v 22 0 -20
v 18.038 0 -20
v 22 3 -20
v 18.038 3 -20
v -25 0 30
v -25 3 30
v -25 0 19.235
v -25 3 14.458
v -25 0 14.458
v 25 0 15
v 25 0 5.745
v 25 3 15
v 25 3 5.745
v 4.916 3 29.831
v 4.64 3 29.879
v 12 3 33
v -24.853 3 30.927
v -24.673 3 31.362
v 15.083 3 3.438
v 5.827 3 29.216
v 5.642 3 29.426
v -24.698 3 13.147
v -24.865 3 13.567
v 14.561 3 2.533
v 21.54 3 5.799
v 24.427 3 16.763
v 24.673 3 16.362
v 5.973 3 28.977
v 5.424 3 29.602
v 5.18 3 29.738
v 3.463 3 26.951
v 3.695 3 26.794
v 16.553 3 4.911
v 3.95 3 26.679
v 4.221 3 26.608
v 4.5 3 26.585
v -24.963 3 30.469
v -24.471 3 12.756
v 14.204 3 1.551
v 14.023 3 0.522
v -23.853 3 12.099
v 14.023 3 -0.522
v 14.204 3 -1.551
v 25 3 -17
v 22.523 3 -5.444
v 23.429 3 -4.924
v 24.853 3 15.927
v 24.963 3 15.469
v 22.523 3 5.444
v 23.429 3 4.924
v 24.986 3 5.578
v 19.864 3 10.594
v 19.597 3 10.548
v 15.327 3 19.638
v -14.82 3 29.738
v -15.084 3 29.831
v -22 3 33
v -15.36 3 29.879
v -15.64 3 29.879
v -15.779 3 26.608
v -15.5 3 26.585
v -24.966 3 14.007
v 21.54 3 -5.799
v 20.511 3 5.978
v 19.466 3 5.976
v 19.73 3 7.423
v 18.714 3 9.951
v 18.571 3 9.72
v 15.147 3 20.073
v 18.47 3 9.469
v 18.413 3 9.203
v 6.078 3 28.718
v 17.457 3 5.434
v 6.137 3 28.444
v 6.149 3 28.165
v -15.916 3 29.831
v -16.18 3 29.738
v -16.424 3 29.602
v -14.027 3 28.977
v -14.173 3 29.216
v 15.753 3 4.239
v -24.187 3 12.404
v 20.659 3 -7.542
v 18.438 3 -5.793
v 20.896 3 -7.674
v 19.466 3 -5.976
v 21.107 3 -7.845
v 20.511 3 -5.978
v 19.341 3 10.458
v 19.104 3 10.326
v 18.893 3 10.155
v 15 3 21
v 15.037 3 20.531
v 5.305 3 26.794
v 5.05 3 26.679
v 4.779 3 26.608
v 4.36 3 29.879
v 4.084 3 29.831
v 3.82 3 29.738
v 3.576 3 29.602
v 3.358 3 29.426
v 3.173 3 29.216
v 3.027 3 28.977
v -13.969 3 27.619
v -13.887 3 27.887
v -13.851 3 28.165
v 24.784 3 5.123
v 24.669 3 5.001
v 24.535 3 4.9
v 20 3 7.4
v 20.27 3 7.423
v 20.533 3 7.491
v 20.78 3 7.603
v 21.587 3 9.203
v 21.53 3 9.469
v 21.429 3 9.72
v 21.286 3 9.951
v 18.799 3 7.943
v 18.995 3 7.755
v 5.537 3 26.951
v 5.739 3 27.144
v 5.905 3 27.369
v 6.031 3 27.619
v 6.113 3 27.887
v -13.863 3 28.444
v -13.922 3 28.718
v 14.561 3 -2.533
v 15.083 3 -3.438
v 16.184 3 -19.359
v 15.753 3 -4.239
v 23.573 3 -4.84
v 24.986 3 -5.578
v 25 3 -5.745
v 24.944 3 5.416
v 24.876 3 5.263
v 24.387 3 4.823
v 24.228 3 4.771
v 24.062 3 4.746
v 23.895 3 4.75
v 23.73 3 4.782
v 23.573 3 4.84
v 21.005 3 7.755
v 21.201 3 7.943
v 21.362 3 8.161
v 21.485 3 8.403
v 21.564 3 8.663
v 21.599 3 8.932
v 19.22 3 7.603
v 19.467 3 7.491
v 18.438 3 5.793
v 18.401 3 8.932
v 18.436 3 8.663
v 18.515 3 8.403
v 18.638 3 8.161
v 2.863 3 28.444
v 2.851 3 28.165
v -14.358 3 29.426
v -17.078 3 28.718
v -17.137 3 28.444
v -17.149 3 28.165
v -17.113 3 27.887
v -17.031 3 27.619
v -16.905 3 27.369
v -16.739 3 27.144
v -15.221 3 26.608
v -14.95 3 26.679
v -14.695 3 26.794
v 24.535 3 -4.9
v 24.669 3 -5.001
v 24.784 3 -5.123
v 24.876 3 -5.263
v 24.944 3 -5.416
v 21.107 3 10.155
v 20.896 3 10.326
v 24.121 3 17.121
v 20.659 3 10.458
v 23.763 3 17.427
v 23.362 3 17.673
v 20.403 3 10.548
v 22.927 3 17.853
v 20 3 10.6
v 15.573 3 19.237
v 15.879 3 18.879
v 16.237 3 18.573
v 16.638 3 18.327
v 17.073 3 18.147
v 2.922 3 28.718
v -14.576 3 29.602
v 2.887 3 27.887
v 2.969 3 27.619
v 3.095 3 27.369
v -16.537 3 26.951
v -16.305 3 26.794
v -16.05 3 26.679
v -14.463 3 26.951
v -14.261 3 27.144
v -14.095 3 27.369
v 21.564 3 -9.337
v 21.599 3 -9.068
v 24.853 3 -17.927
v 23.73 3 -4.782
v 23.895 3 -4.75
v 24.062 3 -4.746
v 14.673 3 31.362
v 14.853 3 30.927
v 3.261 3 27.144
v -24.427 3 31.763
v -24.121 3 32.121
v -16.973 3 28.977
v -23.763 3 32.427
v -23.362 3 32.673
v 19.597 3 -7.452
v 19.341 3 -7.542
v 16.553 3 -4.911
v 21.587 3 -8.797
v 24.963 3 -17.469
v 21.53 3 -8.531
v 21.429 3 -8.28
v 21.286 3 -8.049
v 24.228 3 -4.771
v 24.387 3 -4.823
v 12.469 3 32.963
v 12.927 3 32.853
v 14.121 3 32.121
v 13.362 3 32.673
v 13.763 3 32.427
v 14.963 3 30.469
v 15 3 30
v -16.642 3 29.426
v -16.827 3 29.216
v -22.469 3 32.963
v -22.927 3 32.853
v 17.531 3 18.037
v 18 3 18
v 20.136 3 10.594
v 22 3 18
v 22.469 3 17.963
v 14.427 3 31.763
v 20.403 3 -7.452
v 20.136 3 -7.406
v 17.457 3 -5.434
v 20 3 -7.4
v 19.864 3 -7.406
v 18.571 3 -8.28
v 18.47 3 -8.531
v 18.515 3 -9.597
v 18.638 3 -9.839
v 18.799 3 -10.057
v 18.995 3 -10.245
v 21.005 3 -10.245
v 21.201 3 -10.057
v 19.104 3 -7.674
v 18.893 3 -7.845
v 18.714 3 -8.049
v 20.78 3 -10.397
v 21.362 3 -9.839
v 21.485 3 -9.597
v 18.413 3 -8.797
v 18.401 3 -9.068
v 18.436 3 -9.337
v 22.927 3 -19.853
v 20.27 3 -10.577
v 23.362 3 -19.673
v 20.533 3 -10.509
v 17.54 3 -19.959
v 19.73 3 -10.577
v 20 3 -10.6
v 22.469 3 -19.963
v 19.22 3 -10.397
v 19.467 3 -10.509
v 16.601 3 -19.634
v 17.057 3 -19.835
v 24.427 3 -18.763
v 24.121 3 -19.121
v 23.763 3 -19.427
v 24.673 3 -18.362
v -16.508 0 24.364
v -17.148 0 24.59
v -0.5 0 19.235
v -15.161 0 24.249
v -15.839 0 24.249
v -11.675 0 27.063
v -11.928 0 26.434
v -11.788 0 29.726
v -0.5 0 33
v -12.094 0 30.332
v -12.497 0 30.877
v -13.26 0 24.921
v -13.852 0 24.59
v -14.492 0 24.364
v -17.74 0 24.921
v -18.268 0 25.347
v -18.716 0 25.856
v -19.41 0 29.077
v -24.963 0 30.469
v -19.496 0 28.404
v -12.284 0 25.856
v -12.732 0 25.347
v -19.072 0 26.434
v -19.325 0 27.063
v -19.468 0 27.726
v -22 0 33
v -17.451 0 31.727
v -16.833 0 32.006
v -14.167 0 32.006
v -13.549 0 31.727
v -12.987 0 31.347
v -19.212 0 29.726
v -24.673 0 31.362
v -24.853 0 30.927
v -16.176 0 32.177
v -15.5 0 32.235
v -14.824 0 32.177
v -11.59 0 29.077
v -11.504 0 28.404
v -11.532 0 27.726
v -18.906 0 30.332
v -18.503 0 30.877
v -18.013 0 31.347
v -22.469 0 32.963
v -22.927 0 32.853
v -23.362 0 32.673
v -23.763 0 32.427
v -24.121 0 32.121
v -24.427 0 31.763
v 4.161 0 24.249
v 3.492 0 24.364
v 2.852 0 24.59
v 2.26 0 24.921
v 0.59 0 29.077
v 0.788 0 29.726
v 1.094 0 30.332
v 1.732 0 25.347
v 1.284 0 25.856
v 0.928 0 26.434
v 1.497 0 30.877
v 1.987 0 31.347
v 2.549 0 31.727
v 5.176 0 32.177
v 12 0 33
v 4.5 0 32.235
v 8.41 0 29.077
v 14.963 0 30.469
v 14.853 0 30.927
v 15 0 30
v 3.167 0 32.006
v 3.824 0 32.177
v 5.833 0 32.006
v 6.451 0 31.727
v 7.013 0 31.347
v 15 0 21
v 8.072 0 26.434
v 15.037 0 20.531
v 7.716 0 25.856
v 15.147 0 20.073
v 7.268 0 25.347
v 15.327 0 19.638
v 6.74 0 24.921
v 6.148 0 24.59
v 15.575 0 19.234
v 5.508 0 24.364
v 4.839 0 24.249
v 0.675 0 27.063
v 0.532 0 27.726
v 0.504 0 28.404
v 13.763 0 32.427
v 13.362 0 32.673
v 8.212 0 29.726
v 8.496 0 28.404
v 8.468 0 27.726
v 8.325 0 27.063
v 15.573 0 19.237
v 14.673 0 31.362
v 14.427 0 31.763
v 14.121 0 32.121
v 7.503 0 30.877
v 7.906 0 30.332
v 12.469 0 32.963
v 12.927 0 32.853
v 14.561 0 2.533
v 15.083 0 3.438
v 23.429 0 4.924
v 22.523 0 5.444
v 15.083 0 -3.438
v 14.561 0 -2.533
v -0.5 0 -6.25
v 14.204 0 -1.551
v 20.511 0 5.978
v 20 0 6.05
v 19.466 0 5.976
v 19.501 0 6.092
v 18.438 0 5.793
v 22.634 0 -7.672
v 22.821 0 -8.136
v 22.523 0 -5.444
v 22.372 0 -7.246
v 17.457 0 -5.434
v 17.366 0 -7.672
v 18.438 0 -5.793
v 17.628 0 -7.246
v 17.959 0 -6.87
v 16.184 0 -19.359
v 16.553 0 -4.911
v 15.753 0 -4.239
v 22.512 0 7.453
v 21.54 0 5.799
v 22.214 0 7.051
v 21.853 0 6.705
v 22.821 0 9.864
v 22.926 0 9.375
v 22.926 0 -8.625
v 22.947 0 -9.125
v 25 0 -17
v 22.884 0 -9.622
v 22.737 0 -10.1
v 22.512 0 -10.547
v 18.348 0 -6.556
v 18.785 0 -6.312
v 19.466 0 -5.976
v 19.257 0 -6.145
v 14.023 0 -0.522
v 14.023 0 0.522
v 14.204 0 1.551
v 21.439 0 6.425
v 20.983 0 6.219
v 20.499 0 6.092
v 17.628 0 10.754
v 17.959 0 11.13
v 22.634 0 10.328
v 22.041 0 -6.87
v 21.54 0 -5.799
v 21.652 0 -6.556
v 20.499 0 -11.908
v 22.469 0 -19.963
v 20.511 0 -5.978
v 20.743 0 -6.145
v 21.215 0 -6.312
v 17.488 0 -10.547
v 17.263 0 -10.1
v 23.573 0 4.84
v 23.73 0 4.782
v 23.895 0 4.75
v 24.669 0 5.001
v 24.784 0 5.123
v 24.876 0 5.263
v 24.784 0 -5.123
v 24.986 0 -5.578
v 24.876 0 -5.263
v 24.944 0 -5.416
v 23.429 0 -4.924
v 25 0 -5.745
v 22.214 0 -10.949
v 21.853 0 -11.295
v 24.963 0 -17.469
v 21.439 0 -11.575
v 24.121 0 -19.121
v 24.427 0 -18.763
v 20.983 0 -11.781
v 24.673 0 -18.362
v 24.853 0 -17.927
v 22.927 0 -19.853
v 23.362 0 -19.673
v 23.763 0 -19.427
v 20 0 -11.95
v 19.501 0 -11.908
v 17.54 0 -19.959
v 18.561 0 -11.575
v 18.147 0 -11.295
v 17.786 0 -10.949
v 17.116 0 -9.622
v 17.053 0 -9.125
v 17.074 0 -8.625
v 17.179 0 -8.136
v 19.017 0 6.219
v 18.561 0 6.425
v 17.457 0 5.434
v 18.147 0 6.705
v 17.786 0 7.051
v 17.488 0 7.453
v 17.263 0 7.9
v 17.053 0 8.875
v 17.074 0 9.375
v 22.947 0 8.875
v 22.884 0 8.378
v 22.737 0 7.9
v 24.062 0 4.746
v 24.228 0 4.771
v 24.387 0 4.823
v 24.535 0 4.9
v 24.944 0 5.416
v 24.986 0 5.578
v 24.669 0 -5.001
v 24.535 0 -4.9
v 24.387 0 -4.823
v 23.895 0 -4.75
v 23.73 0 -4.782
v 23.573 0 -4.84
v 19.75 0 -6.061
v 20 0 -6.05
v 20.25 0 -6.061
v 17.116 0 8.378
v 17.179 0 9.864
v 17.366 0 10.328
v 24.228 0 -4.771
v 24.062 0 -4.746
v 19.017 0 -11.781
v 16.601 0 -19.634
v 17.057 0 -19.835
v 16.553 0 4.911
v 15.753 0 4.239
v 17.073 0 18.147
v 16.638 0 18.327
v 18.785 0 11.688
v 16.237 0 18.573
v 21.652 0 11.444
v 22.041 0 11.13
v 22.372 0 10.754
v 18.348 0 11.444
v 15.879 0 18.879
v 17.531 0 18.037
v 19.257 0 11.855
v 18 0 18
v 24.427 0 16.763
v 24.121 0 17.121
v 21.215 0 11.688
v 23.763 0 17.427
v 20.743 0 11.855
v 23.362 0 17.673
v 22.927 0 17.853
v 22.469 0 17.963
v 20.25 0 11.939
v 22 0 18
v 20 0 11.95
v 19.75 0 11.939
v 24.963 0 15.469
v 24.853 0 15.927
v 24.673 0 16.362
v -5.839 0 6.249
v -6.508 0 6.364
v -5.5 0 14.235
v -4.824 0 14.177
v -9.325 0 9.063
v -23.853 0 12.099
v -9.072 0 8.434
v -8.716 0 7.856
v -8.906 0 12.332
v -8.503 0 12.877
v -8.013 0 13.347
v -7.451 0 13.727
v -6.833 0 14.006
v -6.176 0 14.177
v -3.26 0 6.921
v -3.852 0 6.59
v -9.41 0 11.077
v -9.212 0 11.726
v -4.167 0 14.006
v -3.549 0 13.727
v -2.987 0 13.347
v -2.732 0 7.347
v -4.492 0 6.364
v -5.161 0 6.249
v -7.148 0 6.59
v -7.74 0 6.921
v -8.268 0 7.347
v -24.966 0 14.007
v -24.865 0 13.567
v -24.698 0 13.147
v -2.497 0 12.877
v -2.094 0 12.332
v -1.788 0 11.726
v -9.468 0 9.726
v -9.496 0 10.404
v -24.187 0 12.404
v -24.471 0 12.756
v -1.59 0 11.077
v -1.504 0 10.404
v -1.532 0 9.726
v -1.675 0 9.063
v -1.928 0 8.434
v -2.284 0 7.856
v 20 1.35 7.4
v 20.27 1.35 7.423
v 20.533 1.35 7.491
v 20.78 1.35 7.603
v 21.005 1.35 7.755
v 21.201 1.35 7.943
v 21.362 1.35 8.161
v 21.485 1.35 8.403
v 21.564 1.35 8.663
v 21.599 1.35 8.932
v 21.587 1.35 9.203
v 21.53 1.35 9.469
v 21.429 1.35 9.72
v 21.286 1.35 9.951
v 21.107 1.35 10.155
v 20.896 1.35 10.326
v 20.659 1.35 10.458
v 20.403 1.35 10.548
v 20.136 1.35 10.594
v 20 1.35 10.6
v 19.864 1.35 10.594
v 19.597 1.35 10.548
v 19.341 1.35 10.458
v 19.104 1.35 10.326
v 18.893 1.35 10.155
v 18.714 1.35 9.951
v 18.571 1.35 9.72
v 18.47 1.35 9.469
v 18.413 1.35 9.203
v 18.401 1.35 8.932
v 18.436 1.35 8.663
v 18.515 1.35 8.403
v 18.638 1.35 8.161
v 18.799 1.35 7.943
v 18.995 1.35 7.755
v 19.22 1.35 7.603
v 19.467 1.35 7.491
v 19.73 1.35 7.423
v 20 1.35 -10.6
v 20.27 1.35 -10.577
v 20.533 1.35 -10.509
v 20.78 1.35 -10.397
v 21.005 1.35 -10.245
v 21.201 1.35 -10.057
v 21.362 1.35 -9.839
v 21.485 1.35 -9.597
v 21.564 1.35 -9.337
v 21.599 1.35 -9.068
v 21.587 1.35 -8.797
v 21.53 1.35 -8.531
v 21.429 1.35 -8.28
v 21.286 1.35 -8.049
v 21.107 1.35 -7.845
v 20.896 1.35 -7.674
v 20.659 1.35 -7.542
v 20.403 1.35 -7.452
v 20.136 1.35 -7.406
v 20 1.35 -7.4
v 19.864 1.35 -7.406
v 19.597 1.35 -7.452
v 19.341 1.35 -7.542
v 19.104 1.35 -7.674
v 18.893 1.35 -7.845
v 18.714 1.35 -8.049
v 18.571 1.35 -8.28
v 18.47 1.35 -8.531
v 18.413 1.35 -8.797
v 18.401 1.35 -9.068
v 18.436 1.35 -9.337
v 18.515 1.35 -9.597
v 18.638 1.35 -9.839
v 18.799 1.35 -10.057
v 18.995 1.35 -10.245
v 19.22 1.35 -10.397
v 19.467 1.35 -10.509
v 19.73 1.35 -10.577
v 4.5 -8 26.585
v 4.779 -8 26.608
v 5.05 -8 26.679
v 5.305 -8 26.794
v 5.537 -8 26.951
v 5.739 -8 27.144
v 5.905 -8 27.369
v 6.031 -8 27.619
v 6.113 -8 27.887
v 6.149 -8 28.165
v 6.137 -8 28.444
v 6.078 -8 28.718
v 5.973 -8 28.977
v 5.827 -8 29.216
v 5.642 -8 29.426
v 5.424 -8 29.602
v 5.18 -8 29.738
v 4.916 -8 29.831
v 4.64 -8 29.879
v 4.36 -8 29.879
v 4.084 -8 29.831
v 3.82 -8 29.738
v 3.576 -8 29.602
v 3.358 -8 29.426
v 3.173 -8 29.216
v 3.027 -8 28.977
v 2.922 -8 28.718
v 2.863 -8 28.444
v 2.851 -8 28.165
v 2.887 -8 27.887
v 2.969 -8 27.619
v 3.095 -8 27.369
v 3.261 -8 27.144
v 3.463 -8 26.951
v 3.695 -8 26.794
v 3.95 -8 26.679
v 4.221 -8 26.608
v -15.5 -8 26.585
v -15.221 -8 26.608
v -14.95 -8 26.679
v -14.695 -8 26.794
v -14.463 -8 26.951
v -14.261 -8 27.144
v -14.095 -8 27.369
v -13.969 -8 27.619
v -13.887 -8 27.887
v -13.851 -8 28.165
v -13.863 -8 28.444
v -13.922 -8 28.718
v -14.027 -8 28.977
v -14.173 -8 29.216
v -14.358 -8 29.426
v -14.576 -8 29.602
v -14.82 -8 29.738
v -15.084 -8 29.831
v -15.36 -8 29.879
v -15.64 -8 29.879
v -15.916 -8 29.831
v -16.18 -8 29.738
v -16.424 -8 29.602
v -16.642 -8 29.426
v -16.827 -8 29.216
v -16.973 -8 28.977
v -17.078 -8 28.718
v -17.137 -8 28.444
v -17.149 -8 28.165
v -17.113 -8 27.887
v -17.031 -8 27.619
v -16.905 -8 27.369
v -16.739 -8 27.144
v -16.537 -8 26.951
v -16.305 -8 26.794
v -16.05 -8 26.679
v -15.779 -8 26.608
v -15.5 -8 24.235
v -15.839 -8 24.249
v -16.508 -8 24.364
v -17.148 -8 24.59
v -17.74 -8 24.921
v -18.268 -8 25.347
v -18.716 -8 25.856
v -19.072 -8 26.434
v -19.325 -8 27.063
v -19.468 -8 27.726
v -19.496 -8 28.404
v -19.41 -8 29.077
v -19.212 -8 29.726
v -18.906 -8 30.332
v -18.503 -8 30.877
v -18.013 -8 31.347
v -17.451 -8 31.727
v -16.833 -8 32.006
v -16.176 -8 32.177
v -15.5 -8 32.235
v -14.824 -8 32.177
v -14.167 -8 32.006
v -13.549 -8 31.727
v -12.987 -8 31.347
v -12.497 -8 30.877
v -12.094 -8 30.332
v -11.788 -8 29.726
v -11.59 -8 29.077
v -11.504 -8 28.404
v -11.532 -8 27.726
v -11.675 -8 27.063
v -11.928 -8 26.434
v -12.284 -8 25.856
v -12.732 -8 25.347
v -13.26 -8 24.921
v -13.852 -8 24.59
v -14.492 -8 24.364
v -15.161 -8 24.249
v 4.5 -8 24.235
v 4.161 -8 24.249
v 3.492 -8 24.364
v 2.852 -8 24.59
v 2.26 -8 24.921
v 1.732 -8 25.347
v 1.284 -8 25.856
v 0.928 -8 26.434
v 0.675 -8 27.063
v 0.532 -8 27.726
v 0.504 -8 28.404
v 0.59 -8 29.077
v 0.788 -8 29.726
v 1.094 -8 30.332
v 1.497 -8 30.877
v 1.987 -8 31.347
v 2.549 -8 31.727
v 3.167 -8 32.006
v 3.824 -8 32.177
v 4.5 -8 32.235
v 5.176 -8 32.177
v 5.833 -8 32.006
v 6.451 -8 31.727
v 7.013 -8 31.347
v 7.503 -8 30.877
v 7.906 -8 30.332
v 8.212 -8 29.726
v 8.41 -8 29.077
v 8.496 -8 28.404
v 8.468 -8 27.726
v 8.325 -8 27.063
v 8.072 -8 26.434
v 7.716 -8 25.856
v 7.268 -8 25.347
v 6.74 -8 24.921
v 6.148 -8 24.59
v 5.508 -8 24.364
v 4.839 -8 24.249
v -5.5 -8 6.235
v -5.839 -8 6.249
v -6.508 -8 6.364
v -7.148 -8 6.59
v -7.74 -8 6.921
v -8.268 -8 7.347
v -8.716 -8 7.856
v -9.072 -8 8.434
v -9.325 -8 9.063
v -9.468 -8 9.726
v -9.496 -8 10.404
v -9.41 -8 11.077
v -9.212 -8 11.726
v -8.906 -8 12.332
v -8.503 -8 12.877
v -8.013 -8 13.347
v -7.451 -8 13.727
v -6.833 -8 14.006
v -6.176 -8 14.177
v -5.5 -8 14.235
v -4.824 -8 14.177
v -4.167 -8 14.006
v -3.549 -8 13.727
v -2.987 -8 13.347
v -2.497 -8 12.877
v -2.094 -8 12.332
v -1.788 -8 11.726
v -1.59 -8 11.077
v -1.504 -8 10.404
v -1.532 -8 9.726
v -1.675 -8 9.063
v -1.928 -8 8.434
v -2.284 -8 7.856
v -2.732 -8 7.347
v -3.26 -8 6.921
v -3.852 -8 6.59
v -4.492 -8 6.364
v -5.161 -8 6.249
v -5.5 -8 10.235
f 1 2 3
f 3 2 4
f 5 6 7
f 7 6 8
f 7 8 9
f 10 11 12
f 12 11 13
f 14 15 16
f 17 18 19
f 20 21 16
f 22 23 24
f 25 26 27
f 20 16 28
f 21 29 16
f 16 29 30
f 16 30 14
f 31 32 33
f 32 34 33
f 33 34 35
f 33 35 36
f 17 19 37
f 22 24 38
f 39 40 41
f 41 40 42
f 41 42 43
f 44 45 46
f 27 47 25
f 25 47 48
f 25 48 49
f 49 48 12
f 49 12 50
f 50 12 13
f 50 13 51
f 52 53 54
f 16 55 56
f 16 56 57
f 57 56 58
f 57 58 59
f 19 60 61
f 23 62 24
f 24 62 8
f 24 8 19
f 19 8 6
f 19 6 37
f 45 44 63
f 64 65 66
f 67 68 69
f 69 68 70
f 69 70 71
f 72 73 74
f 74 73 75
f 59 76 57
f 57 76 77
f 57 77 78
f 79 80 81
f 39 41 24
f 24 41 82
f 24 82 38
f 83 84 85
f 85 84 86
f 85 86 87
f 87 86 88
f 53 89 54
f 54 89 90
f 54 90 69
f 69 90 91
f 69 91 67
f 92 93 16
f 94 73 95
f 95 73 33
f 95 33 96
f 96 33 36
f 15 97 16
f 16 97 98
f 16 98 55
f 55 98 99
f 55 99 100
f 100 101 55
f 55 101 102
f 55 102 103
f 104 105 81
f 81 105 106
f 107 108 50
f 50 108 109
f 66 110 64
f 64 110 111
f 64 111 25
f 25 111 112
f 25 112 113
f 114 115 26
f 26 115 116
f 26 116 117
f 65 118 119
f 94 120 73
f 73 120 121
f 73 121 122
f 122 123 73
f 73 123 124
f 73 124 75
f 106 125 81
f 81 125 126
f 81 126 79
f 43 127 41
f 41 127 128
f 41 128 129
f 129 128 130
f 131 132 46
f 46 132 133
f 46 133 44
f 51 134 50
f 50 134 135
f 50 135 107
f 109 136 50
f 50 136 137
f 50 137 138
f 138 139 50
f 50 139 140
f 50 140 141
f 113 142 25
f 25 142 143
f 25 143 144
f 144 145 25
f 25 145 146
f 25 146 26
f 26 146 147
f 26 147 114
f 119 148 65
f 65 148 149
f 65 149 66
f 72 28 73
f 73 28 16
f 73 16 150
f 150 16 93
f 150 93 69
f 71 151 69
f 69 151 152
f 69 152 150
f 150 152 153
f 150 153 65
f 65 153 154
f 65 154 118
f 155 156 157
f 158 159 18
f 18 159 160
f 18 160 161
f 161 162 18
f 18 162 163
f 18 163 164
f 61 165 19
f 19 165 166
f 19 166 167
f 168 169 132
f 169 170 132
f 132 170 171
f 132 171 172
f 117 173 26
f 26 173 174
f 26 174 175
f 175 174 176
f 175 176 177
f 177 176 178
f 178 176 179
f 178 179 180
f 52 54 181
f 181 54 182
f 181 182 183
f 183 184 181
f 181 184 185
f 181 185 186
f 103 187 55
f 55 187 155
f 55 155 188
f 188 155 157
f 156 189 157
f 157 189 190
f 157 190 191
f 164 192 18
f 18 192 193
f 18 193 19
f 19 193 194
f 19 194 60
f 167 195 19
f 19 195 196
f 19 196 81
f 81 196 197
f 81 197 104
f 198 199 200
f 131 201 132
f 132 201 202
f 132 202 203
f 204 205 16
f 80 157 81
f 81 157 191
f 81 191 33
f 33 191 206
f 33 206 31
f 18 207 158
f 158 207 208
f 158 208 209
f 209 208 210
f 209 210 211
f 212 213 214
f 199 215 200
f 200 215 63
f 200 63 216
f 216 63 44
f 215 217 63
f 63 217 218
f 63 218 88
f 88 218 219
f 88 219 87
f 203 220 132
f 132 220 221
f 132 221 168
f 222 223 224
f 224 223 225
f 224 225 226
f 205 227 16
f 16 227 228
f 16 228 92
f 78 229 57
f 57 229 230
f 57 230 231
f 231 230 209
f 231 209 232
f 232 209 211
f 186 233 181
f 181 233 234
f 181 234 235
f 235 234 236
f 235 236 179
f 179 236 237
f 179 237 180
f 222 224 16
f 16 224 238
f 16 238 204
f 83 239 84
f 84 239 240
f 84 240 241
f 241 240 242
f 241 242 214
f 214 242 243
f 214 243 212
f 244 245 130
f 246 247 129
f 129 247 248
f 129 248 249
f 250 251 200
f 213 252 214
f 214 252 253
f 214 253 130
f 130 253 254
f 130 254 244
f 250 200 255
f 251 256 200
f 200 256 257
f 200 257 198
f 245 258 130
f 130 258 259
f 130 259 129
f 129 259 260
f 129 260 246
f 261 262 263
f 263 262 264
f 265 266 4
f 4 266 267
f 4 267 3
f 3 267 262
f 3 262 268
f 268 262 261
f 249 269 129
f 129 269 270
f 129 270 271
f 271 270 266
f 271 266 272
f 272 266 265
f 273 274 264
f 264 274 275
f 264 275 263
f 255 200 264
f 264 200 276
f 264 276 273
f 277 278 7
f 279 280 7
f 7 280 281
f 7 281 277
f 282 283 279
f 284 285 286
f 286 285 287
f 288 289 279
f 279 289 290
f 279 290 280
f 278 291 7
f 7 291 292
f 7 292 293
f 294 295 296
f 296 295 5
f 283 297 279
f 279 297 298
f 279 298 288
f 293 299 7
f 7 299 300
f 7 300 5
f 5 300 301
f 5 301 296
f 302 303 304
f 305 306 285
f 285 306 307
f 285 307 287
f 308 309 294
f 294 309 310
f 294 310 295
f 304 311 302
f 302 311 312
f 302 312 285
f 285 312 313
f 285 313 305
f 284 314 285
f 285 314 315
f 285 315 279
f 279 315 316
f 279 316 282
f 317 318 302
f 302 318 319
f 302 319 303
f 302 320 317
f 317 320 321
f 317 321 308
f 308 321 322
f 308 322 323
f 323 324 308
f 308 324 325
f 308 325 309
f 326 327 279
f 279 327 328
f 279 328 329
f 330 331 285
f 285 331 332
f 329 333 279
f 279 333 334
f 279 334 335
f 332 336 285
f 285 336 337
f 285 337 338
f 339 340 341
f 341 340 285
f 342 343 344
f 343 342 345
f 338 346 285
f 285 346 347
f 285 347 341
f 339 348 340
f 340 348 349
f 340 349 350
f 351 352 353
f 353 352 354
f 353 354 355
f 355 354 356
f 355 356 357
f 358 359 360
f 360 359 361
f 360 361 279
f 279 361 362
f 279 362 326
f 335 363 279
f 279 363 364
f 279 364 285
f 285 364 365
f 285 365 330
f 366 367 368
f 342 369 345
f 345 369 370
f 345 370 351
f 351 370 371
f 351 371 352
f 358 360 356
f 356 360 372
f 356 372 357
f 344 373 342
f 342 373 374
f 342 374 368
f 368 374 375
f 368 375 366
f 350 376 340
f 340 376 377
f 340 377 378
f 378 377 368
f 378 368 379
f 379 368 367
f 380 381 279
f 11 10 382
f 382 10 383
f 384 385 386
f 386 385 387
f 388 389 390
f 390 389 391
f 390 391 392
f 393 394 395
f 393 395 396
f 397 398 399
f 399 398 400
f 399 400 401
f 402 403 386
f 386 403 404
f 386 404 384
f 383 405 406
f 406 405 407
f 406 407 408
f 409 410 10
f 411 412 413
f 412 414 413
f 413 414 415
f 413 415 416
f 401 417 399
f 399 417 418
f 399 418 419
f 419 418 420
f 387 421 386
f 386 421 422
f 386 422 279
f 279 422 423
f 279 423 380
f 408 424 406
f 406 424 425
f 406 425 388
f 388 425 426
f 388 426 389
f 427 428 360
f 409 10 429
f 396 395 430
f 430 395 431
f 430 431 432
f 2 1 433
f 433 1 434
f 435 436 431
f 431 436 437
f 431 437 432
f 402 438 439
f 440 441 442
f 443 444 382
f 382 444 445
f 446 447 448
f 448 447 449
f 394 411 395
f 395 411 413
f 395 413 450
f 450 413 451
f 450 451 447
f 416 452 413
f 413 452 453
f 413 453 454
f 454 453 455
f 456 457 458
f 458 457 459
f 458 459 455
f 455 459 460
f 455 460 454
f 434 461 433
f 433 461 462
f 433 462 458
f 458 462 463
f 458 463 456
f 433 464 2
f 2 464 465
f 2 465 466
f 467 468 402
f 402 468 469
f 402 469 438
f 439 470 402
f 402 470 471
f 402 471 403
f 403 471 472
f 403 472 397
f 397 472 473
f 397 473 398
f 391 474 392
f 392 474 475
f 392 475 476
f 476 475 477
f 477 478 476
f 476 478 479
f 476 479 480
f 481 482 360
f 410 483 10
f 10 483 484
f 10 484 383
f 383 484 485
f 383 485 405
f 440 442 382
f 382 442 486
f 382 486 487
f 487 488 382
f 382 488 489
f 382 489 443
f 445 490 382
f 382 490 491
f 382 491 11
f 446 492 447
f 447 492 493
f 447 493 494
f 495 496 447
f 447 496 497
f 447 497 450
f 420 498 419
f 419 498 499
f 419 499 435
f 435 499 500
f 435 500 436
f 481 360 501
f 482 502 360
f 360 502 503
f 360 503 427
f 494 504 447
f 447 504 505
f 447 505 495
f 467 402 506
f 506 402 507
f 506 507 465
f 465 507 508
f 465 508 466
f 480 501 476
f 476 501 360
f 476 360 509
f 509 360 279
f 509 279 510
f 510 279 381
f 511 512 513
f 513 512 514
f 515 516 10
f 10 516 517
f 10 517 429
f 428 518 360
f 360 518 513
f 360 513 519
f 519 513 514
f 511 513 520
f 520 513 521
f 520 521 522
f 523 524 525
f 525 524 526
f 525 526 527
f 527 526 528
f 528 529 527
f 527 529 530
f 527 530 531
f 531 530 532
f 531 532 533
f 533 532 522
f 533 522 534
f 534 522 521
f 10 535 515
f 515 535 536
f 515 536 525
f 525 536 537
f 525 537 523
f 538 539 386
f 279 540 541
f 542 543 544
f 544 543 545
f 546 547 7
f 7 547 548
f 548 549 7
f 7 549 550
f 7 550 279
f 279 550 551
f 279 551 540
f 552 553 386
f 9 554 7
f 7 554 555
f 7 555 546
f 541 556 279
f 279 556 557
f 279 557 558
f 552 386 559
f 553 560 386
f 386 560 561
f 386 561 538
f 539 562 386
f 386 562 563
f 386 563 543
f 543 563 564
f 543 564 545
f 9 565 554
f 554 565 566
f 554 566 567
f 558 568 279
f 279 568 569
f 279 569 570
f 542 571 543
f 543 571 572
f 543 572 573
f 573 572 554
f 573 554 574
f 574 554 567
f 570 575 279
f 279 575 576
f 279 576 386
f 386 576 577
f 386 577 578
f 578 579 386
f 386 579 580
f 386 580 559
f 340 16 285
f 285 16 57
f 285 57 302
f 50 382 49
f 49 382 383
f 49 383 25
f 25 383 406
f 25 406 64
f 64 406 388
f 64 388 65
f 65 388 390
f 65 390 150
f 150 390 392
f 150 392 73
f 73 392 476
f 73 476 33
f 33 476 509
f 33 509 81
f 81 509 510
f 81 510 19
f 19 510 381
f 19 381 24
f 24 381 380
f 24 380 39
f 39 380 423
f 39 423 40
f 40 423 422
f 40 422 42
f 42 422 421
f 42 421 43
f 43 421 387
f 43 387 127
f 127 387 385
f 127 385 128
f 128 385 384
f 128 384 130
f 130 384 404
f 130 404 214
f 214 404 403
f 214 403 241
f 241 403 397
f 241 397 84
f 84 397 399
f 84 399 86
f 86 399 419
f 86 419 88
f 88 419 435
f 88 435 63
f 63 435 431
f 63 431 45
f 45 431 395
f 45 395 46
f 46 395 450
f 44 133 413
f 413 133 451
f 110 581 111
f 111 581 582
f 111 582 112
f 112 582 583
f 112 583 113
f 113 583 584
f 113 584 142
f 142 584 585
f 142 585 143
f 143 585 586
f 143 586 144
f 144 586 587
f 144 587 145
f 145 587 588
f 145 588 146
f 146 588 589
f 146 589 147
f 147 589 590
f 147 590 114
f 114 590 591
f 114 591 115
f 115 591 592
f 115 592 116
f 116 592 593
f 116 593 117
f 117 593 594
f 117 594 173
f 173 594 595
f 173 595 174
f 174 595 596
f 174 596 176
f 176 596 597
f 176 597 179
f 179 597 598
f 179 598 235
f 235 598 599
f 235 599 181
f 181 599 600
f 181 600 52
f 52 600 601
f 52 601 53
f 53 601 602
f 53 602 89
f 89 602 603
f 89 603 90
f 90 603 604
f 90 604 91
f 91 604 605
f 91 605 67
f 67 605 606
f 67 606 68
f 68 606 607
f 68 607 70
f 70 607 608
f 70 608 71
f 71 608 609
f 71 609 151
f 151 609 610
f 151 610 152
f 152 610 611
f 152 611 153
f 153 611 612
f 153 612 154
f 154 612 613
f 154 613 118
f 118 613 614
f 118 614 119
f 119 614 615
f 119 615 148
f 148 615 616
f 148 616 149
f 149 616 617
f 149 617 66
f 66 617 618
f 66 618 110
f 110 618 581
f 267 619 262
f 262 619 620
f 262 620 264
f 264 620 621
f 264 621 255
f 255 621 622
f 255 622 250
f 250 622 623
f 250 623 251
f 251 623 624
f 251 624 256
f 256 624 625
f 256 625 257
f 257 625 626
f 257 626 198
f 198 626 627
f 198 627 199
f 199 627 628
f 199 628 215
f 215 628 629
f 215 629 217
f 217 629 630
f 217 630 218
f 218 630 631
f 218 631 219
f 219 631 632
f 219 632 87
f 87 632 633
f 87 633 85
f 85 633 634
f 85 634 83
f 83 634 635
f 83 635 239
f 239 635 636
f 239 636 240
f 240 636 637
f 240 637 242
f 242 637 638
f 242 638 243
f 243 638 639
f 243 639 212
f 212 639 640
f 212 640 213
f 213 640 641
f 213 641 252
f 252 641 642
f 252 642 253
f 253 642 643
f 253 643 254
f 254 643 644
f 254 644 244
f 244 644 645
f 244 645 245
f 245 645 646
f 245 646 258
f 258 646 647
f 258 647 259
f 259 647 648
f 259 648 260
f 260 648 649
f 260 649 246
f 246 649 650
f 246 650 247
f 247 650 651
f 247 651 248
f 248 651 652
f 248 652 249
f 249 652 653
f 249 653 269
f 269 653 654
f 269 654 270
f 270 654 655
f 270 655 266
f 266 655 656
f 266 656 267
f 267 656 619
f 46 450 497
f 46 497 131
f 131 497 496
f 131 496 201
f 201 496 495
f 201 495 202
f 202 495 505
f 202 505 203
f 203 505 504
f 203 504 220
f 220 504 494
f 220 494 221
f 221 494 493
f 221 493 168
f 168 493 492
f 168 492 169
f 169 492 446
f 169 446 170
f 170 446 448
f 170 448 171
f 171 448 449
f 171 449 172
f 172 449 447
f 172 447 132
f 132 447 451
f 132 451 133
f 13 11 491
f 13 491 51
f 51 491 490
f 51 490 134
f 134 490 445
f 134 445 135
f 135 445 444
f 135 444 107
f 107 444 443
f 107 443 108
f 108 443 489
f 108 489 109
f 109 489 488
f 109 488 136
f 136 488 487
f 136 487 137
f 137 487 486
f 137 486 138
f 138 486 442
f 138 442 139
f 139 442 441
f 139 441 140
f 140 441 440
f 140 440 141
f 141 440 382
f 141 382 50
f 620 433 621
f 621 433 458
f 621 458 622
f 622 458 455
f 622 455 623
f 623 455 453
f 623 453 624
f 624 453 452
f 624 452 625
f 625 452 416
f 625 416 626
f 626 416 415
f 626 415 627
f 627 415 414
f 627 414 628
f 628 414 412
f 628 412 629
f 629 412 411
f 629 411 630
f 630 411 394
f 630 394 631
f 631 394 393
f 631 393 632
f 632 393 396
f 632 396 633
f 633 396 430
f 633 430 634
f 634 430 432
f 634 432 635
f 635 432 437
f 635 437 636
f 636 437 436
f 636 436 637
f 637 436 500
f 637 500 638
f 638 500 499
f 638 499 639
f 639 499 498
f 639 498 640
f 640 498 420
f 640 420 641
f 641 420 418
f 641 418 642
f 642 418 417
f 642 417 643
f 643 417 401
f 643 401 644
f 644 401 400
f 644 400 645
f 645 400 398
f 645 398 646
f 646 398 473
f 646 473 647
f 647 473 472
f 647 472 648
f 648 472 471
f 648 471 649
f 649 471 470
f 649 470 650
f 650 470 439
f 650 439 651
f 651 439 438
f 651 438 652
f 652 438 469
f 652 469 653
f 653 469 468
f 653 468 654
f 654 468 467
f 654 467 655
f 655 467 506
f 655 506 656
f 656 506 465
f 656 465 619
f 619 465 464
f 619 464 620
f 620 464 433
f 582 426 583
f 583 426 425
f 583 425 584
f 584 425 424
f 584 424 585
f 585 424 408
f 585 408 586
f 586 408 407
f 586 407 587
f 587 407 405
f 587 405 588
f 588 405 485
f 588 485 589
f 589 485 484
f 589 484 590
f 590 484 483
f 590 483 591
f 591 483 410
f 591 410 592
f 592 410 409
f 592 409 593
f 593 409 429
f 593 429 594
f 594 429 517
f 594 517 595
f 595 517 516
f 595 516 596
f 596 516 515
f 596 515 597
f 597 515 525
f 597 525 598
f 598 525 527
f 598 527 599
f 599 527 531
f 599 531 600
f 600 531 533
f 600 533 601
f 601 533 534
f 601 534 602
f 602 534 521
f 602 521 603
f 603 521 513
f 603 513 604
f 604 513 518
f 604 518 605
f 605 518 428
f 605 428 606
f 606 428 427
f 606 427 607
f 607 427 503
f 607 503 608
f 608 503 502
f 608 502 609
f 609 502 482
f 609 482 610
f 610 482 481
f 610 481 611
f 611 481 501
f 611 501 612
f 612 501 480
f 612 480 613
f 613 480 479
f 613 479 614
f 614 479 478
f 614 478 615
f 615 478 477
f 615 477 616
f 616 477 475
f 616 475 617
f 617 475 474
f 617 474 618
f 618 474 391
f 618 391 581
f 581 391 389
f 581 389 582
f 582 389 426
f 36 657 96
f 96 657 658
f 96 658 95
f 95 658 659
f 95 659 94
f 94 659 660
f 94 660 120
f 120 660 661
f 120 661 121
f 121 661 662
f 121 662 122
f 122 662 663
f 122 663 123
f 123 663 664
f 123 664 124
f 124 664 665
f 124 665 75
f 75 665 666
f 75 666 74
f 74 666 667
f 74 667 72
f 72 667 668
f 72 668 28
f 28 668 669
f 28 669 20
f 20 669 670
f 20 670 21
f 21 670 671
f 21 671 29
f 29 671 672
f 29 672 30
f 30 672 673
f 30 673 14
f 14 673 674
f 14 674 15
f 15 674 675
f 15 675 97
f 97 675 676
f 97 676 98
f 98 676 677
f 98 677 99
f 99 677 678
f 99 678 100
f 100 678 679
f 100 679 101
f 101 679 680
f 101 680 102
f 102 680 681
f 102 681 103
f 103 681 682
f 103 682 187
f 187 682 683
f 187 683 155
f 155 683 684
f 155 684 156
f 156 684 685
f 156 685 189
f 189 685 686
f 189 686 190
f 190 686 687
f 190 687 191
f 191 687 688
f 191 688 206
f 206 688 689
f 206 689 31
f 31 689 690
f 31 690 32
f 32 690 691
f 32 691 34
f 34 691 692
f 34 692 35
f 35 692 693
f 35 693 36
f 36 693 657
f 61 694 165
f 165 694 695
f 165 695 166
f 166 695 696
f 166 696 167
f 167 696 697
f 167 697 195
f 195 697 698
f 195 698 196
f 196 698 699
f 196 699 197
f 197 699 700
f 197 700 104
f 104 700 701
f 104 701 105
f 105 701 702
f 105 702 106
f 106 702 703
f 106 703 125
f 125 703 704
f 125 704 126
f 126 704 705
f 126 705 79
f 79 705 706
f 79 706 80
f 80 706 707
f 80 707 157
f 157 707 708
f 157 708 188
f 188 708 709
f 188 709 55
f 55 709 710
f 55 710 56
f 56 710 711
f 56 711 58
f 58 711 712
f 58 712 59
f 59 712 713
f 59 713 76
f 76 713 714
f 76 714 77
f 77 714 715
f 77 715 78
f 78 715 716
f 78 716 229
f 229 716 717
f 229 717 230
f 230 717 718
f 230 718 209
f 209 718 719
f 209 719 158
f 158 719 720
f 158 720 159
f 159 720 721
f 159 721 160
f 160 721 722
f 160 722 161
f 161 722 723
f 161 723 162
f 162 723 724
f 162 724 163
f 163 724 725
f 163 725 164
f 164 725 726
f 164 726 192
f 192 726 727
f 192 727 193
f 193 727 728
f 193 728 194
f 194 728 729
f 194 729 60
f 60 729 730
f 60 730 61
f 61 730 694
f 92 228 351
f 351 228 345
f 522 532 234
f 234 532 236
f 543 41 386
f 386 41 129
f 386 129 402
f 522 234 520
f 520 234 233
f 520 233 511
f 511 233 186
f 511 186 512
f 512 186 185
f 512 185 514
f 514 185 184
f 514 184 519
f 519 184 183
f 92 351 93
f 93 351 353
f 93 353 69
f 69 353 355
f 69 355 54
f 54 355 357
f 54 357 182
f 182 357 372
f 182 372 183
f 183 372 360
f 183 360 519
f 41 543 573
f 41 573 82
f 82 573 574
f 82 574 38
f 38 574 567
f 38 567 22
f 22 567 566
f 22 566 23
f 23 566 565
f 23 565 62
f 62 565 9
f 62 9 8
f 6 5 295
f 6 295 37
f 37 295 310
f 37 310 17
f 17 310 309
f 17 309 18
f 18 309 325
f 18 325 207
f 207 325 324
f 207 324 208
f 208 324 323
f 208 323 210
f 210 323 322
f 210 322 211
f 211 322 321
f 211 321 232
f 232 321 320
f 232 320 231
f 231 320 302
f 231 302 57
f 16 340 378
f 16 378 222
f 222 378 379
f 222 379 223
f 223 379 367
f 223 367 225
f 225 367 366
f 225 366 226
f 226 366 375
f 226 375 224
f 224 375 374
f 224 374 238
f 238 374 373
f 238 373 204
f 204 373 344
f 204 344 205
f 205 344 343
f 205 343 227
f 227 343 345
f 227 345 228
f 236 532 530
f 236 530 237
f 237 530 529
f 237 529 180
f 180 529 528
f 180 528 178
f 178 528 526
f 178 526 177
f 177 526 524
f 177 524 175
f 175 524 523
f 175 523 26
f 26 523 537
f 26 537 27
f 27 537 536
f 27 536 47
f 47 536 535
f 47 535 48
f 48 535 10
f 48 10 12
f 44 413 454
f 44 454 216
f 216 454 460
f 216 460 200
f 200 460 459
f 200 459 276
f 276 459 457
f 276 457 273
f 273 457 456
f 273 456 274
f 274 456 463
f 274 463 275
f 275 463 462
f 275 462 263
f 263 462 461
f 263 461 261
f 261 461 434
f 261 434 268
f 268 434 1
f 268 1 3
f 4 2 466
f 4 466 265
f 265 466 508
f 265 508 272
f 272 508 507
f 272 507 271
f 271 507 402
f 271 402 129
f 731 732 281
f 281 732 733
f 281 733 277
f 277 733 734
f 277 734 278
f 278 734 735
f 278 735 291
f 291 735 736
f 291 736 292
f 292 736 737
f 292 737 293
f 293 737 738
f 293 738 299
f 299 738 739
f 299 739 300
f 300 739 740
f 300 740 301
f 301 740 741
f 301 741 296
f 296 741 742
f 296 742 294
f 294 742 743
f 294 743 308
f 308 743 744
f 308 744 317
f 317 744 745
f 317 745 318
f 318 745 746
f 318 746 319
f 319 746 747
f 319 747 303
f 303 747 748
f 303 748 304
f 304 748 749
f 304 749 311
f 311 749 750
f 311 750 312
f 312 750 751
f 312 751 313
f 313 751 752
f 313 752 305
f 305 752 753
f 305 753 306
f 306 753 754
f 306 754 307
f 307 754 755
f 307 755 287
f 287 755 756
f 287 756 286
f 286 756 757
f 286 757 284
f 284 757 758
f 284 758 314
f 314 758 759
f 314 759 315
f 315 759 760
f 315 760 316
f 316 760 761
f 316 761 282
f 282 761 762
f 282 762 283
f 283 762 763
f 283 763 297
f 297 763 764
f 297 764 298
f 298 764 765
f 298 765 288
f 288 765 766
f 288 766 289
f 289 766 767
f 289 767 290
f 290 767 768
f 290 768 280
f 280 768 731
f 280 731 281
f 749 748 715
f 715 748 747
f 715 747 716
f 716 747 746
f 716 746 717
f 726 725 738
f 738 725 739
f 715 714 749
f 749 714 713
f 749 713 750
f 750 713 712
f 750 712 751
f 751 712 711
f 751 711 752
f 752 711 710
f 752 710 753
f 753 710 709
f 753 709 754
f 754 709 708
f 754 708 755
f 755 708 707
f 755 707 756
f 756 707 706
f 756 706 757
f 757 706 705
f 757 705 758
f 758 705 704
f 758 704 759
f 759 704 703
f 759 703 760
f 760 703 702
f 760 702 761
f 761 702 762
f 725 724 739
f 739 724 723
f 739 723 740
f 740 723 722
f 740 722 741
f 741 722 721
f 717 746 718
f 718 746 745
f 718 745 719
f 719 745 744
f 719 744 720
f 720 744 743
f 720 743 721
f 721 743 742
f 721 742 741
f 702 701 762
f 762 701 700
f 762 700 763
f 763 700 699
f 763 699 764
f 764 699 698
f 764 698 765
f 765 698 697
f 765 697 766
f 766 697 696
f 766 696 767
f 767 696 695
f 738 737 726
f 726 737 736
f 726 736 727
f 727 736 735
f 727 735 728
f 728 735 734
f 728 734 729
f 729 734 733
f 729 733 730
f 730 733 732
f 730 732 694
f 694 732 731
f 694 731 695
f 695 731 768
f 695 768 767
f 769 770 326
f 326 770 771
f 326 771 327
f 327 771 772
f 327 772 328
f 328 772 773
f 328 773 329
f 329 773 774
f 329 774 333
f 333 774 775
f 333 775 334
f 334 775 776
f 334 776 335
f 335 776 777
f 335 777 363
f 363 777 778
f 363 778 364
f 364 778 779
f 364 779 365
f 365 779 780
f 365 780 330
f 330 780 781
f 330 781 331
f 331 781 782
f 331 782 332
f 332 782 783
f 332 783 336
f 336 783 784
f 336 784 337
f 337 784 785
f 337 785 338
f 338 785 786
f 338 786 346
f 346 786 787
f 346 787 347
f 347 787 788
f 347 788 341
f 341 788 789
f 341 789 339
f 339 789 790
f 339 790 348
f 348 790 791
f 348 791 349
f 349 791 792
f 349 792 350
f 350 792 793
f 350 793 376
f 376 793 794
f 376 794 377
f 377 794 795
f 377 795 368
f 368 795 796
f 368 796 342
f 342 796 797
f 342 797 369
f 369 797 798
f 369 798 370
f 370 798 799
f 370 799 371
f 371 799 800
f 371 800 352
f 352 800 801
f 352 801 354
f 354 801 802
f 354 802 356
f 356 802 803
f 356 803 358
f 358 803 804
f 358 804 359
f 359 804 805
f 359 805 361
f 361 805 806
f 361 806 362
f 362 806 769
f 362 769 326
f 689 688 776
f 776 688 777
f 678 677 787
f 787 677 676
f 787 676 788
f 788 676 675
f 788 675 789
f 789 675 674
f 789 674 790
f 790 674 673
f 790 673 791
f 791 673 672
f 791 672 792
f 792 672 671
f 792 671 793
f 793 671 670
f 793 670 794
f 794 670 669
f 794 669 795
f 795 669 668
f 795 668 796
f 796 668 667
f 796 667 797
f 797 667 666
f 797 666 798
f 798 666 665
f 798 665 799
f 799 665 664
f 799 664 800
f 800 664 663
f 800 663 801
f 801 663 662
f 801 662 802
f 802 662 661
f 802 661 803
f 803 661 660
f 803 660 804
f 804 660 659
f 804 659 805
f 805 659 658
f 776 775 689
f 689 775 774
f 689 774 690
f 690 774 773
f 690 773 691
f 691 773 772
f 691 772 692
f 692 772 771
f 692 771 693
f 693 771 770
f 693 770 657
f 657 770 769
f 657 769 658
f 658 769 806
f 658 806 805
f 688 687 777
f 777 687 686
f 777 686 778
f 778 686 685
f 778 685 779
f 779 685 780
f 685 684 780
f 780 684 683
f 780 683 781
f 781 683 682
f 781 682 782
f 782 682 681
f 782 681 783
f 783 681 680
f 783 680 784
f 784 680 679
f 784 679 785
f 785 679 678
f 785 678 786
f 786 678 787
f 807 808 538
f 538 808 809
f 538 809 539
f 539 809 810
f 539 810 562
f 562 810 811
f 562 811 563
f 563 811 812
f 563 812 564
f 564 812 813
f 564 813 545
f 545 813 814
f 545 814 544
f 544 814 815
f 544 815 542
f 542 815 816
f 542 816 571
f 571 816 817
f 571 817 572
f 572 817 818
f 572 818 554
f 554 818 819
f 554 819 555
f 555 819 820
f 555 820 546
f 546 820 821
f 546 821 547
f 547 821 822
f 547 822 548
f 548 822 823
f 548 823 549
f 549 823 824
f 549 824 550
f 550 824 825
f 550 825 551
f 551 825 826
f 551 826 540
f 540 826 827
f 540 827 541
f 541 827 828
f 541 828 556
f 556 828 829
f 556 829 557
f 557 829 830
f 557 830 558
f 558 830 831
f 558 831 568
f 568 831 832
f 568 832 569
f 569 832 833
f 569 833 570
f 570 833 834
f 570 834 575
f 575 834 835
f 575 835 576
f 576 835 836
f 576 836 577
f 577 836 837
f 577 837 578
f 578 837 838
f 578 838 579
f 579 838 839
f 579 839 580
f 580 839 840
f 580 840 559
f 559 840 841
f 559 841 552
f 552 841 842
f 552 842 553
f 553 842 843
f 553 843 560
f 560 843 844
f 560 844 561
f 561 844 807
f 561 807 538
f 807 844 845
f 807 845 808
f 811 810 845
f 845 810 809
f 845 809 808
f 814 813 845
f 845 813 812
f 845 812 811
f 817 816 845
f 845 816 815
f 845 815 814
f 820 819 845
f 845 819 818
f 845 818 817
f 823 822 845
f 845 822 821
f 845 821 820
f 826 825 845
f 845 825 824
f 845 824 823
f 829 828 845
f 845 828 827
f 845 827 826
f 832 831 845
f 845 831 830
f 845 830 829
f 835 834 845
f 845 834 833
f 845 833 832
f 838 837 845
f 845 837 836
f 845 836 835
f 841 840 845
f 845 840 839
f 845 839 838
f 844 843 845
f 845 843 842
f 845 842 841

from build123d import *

# Parameters (mm, degrees)
ESBO_O1_R                  = 1.6
RESSALTO_EXTRUS_O10_DEPTH  = 3
FILETE2_R                  = 1
CHANFRO1_SIZE              = 1.35
ESBO_O5_W                  = 50
ESBO_O5_H                  = 13
RESSALTO_EXTRUS_O13_DEPTH  = 3
ESBO_O7_R                  = 1.65
CORTE_EXTRUS_O1_DEPTH      = 1
CORTE_EXTRUS_O1_DEPTH_BACK = 4
ESBO_O8_W                  = 10
ESBO_O8_H                  = 15
CORTE_EXTRUS_O2_DEPTH      = 4
FILETE3_R                  = 3
ESBO_O9_R                  = 4
RESSALTO_EXTRUS_O14_DEPTH  = 8
ESBO_O10_R                 = 1.65
CORTE_EXTRUS_O5_DEPTH      = 9


with BuildPart() as part:
    # Esboço1 → Ressalto-extrusão10 (new body)
    with BuildSketch(Plane(origin=(0, 0, 0), x_dir=(1, 0, 0), z_dir=(0, 1, 0))):
        with BuildLine():
            Line((25, 20), (-25, 20))
            Line((-25, 20), (-25, -20))
            Line((-25, -20), (25, -20))
            Line((25, -20), (25, -3.31662479))
            ThreePointArc((25, -3.31662479), (14, 0), (25, 3.31662479))
            Line((25, 3.31662479), (25, 20))
        make_face()
        with Locations((20, -9)):
            Circle(ESBO_O1_R, mode=Mode.SUBTRACT)
        with Locations((20, 9)):
            Circle(ESBO_O1_R, mode=Mode.SUBTRACT)
    extrude(amount=RESSALTO_EXTRUS_O10_DEPTH)

    # Filete2
    filete2_edges = [part.edges().sort_by_distance(p)[0] for p in [
        (25, 1.5, 3.31662479),
        (25, 1.5, -3.31662479),
    ]]
    fillet(filete2_edges, radius=FILETE2_R)

    # Chanfro1
    chanfro1_edges = [part.edges().sort_by_distance(p)[0] for p in [
        (18.4, 0, -9),
        (18.4, 0, 9),
    ]]
    chamfer(chanfro1_edges, length=CHANFRO1_SIZE)

    # Esboço5 → Ressalto-extrusão13 (add)
    with BuildSketch(Plane.XZ):
        with Locations((0, 26.5)):
            Rectangle(ESBO_O5_W, ESBO_O5_H)
    extrude(amount=-RESSALTO_EXTRUS_O13_DEPTH)

    # Esboço7 → Corte-extrusão1 (cut, two sides)
    with BuildSketch(Plane.XZ) as corte_extrus_o1_sk:
        with Locations((-15.5, 28.234562647)):
            Circle(ESBO_O7_R)
        with Locations((4.5, 28.234562647)):
            Circle(ESBO_O7_R)
    extrude(amount=CORTE_EXTRUS_O1_DEPTH, mode=Mode.SUBTRACT)
    extrude(corte_extrus_o1_sk.sketch, amount=-CORTE_EXTRUS_O1_DEPTH_BACK, mode=Mode.SUBTRACT)

    # Esboço8 → Corte-extrusão2 (cut, through all)
    with BuildSketch(Plane.XZ):
        Polygon((-25, -20), (-25, 13), (17, -20), align=None)
        with Locations((20, 25.5)):
            Rectangle(ESBO_O8_W, ESBO_O8_H)
    extrude(amount=-CORTE_EXTRUS_O2_DEPTH, mode=Mode.SUBTRACT)

    # Filete3
    filete3_edges = [part.edges().sort_by_distance(p)[0] for p in [
        (25, 1.5, -20),
        (-25, 1.5, 33),
        (-25, 1.5, 13),
        (17, 1.5, -20),
        (15, 1.5, 18),
        (15, 1.5, 33),
        (25, 1.5, 18),
    ]]
    fillet(filete3_edges, radius=FILETE3_R)

    # Esboço9 → Ressalto-extrusão14 (add)
    with BuildSketch(Plane.XZ):
        with Locations((-15.5, 28.234562647)):
            Circle(ESBO_O9_R)
        with Locations((4.5, 28.234562647)):
            Circle(ESBO_O9_R)
        with Locations((-5.5, 10.234562647)):
            Circle(ESBO_O9_R)
    extrude(amount=RESSALTO_EXTRUS_O14_DEPTH)

    # Esboço10 → Corte-extrusão5 (cut, through all)
    with BuildSketch(Plane.XZ):
        with Locations((-15.5, 28.234562647)):
            Circle(ESBO_O10_R)
        with Locations((4.5, 28.234562647)):
            Circle(ESBO_O10_R)
    extrude(amount=CORTE_EXTRUS_O5_DEPTH, mode=Mode.SUBTRACT)


solid = part.part
